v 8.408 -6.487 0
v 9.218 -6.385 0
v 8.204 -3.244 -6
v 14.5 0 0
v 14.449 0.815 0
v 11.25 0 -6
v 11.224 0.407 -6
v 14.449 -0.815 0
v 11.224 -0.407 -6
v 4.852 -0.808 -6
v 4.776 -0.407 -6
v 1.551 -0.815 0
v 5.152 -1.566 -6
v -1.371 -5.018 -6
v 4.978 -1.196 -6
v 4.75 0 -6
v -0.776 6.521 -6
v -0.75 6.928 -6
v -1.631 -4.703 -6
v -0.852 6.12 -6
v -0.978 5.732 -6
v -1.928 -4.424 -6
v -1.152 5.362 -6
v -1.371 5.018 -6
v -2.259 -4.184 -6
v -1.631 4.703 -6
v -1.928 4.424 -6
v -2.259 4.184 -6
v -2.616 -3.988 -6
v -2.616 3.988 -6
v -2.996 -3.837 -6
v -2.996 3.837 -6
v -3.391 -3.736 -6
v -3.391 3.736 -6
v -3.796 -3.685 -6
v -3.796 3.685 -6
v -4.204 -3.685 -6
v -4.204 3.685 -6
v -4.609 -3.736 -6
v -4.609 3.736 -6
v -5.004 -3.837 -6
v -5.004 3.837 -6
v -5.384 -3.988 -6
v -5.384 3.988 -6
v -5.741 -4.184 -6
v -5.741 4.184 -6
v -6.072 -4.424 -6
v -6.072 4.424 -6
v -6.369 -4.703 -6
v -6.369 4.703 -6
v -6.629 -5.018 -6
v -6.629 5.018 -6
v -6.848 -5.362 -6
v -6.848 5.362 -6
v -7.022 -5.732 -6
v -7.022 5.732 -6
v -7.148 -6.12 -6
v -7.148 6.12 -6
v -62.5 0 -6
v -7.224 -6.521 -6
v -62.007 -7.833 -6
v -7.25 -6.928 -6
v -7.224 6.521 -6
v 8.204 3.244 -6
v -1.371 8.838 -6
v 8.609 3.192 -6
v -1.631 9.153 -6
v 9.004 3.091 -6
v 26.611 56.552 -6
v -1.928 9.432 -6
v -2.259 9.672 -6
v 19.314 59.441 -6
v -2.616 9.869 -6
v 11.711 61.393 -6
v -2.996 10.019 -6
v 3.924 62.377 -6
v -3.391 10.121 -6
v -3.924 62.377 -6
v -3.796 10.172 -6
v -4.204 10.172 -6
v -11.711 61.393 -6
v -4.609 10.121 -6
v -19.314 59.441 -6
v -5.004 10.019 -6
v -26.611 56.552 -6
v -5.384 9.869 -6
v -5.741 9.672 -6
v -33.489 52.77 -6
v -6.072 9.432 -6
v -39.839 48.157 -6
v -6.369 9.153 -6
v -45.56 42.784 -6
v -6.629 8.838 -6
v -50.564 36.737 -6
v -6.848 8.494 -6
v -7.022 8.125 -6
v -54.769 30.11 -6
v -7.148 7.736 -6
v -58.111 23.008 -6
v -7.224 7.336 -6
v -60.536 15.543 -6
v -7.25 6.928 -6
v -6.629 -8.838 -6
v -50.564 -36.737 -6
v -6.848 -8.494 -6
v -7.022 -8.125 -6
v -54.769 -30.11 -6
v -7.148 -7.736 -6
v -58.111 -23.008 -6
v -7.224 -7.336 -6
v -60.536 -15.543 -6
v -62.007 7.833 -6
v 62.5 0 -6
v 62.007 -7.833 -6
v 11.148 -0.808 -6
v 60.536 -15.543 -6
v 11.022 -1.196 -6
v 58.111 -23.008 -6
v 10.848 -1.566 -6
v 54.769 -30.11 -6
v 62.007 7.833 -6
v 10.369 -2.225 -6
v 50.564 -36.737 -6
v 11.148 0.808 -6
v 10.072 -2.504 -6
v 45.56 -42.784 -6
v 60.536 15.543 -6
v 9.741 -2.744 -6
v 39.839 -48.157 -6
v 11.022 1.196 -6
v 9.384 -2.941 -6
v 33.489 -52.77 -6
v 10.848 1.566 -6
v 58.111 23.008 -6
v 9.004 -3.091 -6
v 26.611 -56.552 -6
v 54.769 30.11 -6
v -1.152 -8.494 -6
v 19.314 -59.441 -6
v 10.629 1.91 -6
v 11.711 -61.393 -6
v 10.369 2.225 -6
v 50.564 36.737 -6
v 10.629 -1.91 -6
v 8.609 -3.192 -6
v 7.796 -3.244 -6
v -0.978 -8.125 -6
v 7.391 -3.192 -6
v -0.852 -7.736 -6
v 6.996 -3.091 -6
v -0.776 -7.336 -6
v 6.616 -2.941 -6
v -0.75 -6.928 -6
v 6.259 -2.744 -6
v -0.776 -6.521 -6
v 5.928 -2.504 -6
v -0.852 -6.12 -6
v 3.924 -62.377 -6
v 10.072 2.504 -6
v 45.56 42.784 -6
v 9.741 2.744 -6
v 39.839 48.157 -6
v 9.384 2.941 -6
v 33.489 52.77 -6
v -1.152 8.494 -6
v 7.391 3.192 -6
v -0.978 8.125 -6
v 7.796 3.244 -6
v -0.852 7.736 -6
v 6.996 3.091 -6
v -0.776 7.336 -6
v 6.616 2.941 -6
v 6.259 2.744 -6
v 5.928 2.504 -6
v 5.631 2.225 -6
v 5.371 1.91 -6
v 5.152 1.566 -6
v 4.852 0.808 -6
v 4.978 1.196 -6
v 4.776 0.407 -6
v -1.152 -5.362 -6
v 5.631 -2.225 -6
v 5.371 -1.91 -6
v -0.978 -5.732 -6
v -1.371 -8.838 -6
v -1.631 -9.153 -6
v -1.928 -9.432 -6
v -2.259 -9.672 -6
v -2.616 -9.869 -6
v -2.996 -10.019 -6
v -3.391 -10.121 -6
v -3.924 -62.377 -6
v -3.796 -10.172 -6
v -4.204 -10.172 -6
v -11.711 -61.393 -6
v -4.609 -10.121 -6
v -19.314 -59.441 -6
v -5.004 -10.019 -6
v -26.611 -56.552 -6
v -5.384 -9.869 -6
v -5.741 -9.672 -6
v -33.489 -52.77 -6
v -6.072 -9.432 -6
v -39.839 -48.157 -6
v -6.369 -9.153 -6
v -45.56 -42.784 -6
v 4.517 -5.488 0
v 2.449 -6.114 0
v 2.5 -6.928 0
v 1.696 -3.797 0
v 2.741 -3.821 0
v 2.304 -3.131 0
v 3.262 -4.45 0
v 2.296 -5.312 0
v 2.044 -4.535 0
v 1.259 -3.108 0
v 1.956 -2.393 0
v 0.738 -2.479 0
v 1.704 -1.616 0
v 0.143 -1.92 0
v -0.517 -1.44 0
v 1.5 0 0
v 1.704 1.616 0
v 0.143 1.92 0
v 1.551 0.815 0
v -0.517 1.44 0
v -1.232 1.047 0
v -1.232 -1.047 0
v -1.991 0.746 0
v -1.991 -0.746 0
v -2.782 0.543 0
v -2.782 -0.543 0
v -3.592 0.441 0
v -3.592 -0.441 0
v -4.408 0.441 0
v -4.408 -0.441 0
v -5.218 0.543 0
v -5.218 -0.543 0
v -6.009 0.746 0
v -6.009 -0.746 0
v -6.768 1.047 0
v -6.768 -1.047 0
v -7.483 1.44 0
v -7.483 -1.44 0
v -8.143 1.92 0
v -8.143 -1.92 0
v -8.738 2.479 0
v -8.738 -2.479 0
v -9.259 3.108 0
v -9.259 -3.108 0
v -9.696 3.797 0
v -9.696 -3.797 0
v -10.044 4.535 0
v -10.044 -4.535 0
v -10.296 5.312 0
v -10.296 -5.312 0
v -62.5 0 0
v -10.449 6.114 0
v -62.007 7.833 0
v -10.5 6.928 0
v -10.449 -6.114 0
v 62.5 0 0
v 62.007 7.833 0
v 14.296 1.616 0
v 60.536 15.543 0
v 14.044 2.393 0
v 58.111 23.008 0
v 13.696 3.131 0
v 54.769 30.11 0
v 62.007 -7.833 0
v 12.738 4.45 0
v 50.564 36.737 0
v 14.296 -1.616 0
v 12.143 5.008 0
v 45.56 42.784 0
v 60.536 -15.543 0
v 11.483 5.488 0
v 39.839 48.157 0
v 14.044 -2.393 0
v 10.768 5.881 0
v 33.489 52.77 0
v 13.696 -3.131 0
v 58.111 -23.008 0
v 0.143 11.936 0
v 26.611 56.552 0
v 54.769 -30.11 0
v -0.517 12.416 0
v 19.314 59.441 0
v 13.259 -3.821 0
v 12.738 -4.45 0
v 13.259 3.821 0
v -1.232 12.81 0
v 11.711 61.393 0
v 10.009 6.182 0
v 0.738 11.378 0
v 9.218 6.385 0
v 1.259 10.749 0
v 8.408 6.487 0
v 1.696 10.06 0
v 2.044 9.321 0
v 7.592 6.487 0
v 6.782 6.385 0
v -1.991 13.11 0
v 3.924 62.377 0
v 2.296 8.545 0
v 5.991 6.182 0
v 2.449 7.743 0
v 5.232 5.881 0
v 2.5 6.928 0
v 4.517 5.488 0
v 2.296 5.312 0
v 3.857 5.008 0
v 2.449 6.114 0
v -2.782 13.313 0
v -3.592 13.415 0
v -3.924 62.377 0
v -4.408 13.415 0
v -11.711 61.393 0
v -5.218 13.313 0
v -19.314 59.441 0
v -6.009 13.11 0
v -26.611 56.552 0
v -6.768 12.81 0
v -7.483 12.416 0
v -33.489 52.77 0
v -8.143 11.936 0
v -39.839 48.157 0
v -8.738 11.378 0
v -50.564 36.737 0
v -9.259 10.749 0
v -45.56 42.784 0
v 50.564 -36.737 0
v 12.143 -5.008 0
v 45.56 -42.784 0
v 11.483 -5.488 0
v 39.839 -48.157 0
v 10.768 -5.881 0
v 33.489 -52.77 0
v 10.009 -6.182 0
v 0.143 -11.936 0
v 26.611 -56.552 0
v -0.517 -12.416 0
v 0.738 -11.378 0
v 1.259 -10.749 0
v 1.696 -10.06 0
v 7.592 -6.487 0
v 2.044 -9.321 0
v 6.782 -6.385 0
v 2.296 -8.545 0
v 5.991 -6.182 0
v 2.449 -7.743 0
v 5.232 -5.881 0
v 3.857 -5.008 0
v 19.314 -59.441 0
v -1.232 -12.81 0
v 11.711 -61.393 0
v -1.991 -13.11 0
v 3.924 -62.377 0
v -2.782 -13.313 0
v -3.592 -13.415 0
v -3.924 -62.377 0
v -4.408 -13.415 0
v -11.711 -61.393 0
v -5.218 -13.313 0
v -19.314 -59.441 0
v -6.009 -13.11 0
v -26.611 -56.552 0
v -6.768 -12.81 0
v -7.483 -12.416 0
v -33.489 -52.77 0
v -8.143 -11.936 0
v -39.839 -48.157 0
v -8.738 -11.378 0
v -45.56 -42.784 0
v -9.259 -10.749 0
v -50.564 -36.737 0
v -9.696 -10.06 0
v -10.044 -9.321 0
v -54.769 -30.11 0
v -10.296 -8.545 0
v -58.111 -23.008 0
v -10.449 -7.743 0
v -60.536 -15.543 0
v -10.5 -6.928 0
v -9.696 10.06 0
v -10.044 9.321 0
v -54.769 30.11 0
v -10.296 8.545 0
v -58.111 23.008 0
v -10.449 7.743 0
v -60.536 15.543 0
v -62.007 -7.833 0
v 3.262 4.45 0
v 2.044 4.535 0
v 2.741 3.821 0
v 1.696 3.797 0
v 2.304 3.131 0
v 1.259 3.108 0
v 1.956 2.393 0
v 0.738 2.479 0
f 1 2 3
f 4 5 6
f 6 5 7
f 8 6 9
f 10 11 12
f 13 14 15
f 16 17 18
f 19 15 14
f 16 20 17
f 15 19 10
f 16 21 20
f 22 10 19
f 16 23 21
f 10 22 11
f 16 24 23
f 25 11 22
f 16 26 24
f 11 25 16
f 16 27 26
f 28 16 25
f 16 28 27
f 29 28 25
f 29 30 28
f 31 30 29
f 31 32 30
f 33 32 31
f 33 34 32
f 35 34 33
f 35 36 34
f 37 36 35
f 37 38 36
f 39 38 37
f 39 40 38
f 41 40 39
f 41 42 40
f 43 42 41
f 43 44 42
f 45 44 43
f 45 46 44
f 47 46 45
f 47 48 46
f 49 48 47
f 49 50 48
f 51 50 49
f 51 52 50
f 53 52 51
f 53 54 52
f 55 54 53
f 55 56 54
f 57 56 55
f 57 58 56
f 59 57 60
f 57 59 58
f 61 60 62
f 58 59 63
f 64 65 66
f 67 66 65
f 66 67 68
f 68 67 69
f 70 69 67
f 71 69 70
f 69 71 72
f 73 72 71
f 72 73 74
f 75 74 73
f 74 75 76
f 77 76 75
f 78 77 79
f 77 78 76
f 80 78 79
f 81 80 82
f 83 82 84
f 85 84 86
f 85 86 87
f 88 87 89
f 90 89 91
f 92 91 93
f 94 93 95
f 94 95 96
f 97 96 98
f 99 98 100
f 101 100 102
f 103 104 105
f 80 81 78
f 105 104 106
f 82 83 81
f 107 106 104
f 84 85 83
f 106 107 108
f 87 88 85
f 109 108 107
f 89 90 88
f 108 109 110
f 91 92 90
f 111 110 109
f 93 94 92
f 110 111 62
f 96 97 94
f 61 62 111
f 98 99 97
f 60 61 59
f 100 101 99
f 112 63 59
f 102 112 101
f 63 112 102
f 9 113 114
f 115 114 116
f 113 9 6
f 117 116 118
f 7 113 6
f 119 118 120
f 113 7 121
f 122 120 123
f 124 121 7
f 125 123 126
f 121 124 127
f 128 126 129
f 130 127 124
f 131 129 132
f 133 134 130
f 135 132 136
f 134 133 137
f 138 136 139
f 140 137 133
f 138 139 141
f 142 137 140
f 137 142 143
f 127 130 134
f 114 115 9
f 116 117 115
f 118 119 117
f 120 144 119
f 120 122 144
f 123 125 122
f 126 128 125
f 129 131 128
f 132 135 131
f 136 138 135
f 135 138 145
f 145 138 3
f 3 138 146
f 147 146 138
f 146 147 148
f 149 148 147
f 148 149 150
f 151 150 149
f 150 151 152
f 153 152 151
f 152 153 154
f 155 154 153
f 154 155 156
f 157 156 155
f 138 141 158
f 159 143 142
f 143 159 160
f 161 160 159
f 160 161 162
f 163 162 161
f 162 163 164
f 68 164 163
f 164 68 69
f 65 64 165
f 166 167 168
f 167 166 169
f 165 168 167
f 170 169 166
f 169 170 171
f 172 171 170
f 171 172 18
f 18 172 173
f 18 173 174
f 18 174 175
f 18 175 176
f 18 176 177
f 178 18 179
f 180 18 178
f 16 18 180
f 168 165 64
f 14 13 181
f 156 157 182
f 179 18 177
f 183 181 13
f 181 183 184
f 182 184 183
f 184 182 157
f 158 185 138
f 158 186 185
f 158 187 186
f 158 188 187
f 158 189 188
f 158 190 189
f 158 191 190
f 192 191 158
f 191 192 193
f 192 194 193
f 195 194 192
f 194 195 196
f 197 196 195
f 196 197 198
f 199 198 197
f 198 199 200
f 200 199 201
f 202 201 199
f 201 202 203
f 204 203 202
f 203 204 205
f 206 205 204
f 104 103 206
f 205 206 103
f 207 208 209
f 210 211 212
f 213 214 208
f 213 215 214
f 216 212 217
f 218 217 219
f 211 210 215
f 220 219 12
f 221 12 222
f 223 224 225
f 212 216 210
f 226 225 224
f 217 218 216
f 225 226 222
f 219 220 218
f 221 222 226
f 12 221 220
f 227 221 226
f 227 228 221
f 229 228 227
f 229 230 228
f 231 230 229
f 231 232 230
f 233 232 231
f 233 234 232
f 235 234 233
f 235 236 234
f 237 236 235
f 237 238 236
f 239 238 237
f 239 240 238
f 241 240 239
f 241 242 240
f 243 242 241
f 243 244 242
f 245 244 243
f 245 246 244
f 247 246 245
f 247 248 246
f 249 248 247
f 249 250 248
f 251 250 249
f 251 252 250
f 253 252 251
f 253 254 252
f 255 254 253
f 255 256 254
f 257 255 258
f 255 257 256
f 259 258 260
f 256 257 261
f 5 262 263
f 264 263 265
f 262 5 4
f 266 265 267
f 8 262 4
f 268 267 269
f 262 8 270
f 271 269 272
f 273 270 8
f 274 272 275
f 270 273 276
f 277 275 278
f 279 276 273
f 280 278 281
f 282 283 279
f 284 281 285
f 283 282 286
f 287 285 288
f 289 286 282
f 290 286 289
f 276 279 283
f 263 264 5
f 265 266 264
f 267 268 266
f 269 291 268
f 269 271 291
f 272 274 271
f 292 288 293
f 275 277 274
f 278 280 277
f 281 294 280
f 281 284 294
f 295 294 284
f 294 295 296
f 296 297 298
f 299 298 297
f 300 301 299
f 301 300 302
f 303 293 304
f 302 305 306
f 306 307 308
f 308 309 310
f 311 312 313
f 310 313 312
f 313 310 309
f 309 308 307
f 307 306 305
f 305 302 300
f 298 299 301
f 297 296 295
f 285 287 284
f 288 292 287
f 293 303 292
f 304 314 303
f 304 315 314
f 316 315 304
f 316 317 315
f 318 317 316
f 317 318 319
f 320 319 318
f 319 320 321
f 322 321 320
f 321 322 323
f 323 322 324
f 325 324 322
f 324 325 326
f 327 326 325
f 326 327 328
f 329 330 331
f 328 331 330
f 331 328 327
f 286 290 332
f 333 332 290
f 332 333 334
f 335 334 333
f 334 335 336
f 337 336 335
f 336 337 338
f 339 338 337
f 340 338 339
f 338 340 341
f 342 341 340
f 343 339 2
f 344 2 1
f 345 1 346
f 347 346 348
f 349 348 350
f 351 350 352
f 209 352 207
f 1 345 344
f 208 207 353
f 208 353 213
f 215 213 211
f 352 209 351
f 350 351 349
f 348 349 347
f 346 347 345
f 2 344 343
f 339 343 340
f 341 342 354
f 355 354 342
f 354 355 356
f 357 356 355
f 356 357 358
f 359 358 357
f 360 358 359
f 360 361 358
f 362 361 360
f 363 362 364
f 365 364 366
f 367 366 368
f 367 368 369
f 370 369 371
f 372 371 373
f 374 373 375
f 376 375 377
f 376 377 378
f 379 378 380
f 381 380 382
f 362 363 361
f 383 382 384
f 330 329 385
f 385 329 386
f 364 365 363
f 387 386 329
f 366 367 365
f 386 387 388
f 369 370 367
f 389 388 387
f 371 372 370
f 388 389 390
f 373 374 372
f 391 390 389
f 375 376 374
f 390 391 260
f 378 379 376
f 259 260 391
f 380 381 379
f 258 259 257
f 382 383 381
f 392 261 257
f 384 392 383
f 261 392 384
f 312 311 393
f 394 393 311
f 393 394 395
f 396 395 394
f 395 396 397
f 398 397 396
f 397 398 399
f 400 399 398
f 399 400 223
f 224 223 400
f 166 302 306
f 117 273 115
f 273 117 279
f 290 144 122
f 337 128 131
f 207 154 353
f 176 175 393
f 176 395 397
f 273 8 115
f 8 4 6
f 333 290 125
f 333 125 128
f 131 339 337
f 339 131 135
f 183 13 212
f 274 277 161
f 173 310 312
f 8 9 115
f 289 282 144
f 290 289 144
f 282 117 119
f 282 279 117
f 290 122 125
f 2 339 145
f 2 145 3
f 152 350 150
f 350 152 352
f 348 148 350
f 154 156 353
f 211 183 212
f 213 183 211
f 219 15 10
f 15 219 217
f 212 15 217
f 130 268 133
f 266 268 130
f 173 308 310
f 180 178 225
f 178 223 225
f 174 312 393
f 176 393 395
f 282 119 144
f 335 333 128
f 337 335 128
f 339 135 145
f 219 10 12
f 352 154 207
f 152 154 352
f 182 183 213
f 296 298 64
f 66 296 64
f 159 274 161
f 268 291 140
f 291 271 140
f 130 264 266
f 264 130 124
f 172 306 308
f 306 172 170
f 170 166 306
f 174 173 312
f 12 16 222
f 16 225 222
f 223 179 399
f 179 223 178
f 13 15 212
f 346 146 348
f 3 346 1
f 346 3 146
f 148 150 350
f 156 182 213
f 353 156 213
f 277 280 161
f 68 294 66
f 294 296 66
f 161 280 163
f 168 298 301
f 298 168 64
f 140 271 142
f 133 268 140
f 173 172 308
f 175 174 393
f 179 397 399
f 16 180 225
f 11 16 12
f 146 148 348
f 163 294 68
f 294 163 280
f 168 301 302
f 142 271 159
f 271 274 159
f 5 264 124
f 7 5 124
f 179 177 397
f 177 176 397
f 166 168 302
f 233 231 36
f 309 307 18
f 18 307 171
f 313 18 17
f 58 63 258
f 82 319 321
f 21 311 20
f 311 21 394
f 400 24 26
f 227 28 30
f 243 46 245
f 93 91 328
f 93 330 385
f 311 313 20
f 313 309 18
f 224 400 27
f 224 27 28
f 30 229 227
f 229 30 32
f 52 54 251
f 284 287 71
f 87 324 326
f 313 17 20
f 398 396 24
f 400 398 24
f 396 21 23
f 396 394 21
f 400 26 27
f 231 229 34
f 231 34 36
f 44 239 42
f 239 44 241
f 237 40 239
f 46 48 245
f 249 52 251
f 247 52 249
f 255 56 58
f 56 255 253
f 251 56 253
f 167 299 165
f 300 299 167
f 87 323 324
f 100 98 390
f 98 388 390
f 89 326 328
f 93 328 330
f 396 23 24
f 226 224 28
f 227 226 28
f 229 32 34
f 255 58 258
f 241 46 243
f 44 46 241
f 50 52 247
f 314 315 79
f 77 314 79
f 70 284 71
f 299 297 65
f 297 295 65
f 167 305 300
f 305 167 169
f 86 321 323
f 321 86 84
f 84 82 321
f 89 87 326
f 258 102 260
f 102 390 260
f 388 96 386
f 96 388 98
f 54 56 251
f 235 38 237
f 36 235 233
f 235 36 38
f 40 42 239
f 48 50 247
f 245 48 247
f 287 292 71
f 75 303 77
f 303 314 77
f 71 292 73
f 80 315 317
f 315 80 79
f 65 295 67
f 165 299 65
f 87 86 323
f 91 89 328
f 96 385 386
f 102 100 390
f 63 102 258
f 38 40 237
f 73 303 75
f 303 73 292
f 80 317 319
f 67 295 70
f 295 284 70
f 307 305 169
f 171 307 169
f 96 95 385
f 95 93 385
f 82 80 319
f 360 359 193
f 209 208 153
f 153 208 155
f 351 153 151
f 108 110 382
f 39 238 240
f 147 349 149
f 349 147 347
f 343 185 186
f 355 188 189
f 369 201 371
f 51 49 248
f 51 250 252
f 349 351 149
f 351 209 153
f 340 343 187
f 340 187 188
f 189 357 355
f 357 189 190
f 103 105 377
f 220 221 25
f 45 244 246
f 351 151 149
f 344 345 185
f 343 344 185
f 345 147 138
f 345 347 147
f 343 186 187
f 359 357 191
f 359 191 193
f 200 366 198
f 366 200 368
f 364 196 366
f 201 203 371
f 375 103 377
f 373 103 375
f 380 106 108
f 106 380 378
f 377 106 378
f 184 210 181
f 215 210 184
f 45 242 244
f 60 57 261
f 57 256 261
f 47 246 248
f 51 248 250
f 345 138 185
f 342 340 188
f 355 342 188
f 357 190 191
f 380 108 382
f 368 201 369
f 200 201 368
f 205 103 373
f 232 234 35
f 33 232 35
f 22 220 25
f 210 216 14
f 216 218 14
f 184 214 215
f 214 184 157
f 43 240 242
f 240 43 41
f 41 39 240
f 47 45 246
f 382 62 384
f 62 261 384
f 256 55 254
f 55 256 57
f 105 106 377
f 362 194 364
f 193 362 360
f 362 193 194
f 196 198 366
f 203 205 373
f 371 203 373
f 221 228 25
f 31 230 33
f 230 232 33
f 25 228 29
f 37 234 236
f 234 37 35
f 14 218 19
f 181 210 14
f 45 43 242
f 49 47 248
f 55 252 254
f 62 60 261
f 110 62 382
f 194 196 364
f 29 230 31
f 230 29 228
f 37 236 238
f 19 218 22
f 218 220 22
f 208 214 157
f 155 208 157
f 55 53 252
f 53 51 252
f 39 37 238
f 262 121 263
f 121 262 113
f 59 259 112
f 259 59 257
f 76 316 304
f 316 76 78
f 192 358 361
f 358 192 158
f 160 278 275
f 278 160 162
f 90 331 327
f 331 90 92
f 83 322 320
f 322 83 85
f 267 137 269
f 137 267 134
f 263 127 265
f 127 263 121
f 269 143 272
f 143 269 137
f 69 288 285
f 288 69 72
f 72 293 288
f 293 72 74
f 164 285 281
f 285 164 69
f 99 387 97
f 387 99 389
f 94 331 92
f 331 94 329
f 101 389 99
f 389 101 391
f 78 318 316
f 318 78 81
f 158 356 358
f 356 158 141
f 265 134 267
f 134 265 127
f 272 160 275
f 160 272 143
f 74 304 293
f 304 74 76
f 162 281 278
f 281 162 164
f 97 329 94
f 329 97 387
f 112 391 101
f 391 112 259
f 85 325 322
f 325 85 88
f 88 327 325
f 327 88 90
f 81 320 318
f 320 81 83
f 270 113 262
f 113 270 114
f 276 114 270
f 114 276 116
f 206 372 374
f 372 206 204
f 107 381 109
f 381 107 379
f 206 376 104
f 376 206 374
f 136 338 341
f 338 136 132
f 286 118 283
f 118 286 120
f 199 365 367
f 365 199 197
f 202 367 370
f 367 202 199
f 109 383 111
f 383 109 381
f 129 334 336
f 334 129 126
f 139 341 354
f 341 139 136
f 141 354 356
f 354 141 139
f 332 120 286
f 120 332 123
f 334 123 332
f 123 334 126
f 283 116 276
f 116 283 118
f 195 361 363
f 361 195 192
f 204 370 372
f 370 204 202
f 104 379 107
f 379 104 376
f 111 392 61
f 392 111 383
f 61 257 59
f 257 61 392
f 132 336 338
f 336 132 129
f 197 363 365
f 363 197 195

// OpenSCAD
$fn = 50;


difference() {
	union() {
		cylinder(h = 0, r = 12.5000000000);
		translate(v = [0, 0, -6.0000000000]) {
			cylinder(h = 6, r = 62.5000000000);
		}
	}
	union() {
		translate(v = [8.0000000000, 0.0000000000, 0]) {
			rotate(a = [0, 0, 0]) {
				difference() {
					union() {
						#cylinder(h = 0, r = 2.2500000000);
						#translate(v = [0, 0, -6]) {
							cylinder(h = 6, r = 12.5000000000, r1 = 3.2500000000, r2 = 6.5000000000);
						}
						#cylinder(h = 0, r = 3.2500000000);
						#cylinder(h = 0, r = 2.2500000000);
					}
					union();
				}
			}
		}
		translate(v = [-4.0000000000, 6.9282032303, 0]) {
			rotate(a = [0, 0, 0]) {
				difference() {
					union() {
						#cylinder(h = 0, r = 2.2500000000);
						#translate(v = [0, 0, -6]) {
							cylinder(h = 6, r = 12.5000000000, r1 = 3.2500000000, r2 = 6.5000000000);
						}
						#cylinder(h = 0, r = 3.2500000000);
						#cylinder(h = 0, r = 2.2500000000);
					}
					union();
				}
			}
		}
		translate(v = [-4.0000000000, -6.9282032303, 0]) {
			rotate(a = [0, 0, 0]) {
				difference() {
					union() {
						#cylinder(h = 0, r = 2.2500000000);
						#translate(v = [0, 0, -6]) {
							cylinder(h = 6, r = 12.5000000000, r1 = 3.2500000000, r2 = 6.5000000000);
						}
						#cylinder(h = 0, r = 3.2500000000);
						#cylinder(h = 0, r = 2.2500000000);
					}
					union();
				}
			}
		}
	}
}
